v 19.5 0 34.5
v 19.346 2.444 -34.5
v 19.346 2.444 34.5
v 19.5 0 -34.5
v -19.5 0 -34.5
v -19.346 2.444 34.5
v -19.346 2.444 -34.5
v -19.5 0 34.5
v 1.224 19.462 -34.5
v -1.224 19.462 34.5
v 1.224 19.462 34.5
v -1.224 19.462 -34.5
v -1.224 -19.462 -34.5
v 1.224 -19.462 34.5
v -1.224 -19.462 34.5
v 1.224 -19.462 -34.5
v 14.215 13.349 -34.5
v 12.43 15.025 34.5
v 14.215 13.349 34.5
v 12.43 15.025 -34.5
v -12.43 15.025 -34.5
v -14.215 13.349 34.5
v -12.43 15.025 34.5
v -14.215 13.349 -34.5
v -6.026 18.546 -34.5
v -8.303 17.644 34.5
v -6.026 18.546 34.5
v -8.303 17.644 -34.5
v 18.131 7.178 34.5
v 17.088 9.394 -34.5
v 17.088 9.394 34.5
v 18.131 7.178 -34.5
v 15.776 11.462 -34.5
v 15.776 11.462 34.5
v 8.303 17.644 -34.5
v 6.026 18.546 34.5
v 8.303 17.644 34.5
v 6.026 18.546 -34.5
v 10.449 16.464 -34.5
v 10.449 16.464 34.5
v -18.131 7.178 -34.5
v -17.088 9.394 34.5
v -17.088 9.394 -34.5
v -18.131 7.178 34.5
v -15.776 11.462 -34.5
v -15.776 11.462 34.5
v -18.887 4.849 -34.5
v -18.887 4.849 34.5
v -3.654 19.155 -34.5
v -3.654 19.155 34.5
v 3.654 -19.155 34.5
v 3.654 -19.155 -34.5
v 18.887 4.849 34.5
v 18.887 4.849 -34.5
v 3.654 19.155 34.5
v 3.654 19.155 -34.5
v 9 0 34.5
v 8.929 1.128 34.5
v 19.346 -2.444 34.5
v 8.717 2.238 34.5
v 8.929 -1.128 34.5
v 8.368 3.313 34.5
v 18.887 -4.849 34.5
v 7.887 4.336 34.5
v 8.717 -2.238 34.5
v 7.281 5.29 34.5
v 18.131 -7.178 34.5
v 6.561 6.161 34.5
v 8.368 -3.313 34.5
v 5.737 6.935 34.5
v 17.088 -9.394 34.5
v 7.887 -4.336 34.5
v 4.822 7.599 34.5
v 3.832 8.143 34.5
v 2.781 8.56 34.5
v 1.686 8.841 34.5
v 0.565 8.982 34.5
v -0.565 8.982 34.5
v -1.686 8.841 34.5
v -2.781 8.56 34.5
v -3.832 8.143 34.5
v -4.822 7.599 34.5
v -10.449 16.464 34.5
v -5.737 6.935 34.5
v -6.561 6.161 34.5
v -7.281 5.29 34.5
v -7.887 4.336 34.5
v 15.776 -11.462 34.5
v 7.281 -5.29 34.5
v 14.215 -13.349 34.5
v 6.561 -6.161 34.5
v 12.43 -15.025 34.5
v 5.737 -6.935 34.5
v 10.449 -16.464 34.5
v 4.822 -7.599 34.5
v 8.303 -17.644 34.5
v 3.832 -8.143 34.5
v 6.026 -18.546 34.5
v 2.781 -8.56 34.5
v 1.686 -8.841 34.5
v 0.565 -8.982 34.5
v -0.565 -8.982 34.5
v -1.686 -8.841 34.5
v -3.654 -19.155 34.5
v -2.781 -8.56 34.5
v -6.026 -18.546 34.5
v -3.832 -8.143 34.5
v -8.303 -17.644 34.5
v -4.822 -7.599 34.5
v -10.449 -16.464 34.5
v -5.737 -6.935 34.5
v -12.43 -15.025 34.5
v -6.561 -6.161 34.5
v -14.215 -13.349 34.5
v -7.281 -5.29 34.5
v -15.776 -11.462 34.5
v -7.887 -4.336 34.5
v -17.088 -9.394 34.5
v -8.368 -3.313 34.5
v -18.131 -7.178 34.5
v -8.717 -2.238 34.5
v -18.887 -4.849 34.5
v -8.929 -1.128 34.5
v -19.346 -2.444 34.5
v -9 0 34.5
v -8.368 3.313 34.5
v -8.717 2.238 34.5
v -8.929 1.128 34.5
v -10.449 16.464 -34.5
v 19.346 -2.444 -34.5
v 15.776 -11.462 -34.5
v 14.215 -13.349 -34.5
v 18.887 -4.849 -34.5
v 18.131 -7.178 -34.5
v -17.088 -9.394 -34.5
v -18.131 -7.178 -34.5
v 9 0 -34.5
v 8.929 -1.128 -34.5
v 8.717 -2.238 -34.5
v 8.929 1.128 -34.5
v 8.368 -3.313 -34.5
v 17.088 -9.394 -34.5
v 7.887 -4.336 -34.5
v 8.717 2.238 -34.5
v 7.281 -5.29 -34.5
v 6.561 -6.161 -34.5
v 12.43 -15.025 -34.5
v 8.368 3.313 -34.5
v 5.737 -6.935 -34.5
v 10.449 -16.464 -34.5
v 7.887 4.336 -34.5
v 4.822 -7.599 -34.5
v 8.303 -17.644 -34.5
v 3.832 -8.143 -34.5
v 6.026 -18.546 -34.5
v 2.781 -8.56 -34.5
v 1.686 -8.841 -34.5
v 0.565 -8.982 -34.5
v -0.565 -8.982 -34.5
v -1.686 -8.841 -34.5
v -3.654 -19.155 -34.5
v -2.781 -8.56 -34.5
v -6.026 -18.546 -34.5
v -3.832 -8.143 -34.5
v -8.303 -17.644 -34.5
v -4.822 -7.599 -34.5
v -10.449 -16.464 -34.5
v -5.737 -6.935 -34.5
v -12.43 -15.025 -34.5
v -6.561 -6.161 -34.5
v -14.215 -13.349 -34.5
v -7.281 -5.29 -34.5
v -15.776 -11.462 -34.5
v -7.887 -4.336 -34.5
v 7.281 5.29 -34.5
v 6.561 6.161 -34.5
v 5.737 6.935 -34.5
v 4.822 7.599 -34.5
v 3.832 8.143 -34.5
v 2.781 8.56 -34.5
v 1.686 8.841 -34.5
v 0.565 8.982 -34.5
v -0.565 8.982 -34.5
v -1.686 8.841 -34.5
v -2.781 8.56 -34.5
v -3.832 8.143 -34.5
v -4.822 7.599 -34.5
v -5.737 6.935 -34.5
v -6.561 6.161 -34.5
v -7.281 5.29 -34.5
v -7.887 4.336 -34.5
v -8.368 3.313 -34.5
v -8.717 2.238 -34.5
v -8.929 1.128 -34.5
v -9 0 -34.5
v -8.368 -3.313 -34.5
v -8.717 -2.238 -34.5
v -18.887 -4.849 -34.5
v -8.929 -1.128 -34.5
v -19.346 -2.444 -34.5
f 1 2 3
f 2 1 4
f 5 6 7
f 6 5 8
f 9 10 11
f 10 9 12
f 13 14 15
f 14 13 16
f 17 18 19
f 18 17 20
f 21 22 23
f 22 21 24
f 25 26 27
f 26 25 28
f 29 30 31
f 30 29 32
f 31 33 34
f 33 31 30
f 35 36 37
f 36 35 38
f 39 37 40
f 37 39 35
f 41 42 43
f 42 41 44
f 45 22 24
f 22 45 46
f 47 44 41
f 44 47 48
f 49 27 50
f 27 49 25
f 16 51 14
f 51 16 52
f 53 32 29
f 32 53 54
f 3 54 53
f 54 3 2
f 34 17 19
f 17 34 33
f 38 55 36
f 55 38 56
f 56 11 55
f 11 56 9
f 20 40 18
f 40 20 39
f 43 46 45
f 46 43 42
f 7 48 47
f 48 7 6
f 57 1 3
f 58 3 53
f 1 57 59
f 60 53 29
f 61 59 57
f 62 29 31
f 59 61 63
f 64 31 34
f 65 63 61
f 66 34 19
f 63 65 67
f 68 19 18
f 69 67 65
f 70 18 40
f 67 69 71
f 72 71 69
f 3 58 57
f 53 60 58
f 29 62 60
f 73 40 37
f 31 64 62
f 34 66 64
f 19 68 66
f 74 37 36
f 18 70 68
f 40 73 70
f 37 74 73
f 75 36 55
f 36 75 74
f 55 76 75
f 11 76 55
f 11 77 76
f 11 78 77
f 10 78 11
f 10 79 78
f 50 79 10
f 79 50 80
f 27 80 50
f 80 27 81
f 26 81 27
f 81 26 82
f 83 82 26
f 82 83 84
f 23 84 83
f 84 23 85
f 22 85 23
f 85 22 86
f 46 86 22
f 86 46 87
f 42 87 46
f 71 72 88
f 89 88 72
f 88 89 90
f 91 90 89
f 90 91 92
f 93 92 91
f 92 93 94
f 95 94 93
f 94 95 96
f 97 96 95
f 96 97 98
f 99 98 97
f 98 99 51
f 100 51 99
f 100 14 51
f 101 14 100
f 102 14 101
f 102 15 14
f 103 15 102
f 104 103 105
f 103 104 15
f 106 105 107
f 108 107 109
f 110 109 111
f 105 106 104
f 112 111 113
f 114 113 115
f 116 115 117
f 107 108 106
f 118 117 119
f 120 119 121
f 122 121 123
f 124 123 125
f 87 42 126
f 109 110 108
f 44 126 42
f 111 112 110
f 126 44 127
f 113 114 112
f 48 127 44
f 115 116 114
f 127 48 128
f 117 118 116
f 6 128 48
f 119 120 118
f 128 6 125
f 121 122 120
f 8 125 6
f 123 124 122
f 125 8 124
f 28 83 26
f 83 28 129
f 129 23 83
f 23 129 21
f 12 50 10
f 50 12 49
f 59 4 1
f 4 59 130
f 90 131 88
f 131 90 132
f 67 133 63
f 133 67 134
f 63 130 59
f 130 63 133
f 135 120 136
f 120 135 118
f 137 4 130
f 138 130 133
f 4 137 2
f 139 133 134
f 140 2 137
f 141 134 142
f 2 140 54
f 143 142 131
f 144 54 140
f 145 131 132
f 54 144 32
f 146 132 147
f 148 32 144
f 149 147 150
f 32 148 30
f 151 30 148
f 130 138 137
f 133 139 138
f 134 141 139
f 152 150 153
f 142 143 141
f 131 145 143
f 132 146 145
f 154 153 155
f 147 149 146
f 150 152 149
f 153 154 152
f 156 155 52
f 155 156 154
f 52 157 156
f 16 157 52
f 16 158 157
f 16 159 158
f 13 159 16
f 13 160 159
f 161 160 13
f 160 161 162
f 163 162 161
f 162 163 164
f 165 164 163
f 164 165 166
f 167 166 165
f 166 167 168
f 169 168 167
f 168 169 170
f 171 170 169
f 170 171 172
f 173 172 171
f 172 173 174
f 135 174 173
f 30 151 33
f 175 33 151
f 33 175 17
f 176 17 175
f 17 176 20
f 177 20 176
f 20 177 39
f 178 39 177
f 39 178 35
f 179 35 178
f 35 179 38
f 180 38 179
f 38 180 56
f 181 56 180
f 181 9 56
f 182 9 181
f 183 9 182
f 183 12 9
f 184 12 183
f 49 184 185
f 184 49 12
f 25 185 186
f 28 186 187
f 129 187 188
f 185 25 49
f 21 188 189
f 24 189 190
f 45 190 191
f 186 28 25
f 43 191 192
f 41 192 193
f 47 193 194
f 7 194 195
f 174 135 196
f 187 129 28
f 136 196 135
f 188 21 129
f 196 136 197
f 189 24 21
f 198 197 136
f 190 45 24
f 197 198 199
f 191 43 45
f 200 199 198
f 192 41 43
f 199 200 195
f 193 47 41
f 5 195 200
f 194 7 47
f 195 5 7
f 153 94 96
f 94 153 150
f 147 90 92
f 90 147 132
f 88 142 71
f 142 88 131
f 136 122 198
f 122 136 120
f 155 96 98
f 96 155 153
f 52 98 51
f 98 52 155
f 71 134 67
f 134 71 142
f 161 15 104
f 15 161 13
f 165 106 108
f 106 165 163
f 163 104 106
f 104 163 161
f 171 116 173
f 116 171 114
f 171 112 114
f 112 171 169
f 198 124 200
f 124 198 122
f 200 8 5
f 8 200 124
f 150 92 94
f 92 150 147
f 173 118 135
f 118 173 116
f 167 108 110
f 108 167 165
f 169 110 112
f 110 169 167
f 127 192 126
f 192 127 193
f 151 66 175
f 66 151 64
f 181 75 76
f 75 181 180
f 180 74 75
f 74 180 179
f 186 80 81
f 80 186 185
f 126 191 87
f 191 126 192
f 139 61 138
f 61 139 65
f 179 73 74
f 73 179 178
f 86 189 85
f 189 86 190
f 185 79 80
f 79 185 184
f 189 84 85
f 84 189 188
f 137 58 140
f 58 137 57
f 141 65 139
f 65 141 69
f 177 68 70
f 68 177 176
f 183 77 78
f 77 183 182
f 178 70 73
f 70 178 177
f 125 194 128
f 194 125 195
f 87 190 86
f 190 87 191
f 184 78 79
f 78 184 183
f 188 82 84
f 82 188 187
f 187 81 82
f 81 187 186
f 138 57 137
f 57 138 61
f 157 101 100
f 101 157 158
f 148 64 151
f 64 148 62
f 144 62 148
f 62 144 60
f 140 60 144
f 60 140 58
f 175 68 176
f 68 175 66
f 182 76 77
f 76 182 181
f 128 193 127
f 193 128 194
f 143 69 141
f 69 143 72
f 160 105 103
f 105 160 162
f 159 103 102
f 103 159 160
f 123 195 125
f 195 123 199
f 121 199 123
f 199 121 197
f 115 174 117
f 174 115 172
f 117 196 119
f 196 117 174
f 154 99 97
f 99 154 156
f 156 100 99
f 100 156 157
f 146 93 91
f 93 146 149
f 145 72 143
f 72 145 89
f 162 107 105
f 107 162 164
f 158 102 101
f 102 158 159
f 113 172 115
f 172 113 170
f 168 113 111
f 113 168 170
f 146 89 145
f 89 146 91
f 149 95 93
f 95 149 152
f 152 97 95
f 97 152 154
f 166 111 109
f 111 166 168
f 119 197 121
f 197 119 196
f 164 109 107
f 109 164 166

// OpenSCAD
$fn = 50;


difference() {
	union() {
		translate(v = [0, 0, -34.5000000000]) {
			cylinder(h = 69, r = 19.5000000000);
		}
	}
	union() {
		translate(v = [0, 0, -100.0000000000]) {
			cylinder(h = 200, r = 9);
		}
	}
}
